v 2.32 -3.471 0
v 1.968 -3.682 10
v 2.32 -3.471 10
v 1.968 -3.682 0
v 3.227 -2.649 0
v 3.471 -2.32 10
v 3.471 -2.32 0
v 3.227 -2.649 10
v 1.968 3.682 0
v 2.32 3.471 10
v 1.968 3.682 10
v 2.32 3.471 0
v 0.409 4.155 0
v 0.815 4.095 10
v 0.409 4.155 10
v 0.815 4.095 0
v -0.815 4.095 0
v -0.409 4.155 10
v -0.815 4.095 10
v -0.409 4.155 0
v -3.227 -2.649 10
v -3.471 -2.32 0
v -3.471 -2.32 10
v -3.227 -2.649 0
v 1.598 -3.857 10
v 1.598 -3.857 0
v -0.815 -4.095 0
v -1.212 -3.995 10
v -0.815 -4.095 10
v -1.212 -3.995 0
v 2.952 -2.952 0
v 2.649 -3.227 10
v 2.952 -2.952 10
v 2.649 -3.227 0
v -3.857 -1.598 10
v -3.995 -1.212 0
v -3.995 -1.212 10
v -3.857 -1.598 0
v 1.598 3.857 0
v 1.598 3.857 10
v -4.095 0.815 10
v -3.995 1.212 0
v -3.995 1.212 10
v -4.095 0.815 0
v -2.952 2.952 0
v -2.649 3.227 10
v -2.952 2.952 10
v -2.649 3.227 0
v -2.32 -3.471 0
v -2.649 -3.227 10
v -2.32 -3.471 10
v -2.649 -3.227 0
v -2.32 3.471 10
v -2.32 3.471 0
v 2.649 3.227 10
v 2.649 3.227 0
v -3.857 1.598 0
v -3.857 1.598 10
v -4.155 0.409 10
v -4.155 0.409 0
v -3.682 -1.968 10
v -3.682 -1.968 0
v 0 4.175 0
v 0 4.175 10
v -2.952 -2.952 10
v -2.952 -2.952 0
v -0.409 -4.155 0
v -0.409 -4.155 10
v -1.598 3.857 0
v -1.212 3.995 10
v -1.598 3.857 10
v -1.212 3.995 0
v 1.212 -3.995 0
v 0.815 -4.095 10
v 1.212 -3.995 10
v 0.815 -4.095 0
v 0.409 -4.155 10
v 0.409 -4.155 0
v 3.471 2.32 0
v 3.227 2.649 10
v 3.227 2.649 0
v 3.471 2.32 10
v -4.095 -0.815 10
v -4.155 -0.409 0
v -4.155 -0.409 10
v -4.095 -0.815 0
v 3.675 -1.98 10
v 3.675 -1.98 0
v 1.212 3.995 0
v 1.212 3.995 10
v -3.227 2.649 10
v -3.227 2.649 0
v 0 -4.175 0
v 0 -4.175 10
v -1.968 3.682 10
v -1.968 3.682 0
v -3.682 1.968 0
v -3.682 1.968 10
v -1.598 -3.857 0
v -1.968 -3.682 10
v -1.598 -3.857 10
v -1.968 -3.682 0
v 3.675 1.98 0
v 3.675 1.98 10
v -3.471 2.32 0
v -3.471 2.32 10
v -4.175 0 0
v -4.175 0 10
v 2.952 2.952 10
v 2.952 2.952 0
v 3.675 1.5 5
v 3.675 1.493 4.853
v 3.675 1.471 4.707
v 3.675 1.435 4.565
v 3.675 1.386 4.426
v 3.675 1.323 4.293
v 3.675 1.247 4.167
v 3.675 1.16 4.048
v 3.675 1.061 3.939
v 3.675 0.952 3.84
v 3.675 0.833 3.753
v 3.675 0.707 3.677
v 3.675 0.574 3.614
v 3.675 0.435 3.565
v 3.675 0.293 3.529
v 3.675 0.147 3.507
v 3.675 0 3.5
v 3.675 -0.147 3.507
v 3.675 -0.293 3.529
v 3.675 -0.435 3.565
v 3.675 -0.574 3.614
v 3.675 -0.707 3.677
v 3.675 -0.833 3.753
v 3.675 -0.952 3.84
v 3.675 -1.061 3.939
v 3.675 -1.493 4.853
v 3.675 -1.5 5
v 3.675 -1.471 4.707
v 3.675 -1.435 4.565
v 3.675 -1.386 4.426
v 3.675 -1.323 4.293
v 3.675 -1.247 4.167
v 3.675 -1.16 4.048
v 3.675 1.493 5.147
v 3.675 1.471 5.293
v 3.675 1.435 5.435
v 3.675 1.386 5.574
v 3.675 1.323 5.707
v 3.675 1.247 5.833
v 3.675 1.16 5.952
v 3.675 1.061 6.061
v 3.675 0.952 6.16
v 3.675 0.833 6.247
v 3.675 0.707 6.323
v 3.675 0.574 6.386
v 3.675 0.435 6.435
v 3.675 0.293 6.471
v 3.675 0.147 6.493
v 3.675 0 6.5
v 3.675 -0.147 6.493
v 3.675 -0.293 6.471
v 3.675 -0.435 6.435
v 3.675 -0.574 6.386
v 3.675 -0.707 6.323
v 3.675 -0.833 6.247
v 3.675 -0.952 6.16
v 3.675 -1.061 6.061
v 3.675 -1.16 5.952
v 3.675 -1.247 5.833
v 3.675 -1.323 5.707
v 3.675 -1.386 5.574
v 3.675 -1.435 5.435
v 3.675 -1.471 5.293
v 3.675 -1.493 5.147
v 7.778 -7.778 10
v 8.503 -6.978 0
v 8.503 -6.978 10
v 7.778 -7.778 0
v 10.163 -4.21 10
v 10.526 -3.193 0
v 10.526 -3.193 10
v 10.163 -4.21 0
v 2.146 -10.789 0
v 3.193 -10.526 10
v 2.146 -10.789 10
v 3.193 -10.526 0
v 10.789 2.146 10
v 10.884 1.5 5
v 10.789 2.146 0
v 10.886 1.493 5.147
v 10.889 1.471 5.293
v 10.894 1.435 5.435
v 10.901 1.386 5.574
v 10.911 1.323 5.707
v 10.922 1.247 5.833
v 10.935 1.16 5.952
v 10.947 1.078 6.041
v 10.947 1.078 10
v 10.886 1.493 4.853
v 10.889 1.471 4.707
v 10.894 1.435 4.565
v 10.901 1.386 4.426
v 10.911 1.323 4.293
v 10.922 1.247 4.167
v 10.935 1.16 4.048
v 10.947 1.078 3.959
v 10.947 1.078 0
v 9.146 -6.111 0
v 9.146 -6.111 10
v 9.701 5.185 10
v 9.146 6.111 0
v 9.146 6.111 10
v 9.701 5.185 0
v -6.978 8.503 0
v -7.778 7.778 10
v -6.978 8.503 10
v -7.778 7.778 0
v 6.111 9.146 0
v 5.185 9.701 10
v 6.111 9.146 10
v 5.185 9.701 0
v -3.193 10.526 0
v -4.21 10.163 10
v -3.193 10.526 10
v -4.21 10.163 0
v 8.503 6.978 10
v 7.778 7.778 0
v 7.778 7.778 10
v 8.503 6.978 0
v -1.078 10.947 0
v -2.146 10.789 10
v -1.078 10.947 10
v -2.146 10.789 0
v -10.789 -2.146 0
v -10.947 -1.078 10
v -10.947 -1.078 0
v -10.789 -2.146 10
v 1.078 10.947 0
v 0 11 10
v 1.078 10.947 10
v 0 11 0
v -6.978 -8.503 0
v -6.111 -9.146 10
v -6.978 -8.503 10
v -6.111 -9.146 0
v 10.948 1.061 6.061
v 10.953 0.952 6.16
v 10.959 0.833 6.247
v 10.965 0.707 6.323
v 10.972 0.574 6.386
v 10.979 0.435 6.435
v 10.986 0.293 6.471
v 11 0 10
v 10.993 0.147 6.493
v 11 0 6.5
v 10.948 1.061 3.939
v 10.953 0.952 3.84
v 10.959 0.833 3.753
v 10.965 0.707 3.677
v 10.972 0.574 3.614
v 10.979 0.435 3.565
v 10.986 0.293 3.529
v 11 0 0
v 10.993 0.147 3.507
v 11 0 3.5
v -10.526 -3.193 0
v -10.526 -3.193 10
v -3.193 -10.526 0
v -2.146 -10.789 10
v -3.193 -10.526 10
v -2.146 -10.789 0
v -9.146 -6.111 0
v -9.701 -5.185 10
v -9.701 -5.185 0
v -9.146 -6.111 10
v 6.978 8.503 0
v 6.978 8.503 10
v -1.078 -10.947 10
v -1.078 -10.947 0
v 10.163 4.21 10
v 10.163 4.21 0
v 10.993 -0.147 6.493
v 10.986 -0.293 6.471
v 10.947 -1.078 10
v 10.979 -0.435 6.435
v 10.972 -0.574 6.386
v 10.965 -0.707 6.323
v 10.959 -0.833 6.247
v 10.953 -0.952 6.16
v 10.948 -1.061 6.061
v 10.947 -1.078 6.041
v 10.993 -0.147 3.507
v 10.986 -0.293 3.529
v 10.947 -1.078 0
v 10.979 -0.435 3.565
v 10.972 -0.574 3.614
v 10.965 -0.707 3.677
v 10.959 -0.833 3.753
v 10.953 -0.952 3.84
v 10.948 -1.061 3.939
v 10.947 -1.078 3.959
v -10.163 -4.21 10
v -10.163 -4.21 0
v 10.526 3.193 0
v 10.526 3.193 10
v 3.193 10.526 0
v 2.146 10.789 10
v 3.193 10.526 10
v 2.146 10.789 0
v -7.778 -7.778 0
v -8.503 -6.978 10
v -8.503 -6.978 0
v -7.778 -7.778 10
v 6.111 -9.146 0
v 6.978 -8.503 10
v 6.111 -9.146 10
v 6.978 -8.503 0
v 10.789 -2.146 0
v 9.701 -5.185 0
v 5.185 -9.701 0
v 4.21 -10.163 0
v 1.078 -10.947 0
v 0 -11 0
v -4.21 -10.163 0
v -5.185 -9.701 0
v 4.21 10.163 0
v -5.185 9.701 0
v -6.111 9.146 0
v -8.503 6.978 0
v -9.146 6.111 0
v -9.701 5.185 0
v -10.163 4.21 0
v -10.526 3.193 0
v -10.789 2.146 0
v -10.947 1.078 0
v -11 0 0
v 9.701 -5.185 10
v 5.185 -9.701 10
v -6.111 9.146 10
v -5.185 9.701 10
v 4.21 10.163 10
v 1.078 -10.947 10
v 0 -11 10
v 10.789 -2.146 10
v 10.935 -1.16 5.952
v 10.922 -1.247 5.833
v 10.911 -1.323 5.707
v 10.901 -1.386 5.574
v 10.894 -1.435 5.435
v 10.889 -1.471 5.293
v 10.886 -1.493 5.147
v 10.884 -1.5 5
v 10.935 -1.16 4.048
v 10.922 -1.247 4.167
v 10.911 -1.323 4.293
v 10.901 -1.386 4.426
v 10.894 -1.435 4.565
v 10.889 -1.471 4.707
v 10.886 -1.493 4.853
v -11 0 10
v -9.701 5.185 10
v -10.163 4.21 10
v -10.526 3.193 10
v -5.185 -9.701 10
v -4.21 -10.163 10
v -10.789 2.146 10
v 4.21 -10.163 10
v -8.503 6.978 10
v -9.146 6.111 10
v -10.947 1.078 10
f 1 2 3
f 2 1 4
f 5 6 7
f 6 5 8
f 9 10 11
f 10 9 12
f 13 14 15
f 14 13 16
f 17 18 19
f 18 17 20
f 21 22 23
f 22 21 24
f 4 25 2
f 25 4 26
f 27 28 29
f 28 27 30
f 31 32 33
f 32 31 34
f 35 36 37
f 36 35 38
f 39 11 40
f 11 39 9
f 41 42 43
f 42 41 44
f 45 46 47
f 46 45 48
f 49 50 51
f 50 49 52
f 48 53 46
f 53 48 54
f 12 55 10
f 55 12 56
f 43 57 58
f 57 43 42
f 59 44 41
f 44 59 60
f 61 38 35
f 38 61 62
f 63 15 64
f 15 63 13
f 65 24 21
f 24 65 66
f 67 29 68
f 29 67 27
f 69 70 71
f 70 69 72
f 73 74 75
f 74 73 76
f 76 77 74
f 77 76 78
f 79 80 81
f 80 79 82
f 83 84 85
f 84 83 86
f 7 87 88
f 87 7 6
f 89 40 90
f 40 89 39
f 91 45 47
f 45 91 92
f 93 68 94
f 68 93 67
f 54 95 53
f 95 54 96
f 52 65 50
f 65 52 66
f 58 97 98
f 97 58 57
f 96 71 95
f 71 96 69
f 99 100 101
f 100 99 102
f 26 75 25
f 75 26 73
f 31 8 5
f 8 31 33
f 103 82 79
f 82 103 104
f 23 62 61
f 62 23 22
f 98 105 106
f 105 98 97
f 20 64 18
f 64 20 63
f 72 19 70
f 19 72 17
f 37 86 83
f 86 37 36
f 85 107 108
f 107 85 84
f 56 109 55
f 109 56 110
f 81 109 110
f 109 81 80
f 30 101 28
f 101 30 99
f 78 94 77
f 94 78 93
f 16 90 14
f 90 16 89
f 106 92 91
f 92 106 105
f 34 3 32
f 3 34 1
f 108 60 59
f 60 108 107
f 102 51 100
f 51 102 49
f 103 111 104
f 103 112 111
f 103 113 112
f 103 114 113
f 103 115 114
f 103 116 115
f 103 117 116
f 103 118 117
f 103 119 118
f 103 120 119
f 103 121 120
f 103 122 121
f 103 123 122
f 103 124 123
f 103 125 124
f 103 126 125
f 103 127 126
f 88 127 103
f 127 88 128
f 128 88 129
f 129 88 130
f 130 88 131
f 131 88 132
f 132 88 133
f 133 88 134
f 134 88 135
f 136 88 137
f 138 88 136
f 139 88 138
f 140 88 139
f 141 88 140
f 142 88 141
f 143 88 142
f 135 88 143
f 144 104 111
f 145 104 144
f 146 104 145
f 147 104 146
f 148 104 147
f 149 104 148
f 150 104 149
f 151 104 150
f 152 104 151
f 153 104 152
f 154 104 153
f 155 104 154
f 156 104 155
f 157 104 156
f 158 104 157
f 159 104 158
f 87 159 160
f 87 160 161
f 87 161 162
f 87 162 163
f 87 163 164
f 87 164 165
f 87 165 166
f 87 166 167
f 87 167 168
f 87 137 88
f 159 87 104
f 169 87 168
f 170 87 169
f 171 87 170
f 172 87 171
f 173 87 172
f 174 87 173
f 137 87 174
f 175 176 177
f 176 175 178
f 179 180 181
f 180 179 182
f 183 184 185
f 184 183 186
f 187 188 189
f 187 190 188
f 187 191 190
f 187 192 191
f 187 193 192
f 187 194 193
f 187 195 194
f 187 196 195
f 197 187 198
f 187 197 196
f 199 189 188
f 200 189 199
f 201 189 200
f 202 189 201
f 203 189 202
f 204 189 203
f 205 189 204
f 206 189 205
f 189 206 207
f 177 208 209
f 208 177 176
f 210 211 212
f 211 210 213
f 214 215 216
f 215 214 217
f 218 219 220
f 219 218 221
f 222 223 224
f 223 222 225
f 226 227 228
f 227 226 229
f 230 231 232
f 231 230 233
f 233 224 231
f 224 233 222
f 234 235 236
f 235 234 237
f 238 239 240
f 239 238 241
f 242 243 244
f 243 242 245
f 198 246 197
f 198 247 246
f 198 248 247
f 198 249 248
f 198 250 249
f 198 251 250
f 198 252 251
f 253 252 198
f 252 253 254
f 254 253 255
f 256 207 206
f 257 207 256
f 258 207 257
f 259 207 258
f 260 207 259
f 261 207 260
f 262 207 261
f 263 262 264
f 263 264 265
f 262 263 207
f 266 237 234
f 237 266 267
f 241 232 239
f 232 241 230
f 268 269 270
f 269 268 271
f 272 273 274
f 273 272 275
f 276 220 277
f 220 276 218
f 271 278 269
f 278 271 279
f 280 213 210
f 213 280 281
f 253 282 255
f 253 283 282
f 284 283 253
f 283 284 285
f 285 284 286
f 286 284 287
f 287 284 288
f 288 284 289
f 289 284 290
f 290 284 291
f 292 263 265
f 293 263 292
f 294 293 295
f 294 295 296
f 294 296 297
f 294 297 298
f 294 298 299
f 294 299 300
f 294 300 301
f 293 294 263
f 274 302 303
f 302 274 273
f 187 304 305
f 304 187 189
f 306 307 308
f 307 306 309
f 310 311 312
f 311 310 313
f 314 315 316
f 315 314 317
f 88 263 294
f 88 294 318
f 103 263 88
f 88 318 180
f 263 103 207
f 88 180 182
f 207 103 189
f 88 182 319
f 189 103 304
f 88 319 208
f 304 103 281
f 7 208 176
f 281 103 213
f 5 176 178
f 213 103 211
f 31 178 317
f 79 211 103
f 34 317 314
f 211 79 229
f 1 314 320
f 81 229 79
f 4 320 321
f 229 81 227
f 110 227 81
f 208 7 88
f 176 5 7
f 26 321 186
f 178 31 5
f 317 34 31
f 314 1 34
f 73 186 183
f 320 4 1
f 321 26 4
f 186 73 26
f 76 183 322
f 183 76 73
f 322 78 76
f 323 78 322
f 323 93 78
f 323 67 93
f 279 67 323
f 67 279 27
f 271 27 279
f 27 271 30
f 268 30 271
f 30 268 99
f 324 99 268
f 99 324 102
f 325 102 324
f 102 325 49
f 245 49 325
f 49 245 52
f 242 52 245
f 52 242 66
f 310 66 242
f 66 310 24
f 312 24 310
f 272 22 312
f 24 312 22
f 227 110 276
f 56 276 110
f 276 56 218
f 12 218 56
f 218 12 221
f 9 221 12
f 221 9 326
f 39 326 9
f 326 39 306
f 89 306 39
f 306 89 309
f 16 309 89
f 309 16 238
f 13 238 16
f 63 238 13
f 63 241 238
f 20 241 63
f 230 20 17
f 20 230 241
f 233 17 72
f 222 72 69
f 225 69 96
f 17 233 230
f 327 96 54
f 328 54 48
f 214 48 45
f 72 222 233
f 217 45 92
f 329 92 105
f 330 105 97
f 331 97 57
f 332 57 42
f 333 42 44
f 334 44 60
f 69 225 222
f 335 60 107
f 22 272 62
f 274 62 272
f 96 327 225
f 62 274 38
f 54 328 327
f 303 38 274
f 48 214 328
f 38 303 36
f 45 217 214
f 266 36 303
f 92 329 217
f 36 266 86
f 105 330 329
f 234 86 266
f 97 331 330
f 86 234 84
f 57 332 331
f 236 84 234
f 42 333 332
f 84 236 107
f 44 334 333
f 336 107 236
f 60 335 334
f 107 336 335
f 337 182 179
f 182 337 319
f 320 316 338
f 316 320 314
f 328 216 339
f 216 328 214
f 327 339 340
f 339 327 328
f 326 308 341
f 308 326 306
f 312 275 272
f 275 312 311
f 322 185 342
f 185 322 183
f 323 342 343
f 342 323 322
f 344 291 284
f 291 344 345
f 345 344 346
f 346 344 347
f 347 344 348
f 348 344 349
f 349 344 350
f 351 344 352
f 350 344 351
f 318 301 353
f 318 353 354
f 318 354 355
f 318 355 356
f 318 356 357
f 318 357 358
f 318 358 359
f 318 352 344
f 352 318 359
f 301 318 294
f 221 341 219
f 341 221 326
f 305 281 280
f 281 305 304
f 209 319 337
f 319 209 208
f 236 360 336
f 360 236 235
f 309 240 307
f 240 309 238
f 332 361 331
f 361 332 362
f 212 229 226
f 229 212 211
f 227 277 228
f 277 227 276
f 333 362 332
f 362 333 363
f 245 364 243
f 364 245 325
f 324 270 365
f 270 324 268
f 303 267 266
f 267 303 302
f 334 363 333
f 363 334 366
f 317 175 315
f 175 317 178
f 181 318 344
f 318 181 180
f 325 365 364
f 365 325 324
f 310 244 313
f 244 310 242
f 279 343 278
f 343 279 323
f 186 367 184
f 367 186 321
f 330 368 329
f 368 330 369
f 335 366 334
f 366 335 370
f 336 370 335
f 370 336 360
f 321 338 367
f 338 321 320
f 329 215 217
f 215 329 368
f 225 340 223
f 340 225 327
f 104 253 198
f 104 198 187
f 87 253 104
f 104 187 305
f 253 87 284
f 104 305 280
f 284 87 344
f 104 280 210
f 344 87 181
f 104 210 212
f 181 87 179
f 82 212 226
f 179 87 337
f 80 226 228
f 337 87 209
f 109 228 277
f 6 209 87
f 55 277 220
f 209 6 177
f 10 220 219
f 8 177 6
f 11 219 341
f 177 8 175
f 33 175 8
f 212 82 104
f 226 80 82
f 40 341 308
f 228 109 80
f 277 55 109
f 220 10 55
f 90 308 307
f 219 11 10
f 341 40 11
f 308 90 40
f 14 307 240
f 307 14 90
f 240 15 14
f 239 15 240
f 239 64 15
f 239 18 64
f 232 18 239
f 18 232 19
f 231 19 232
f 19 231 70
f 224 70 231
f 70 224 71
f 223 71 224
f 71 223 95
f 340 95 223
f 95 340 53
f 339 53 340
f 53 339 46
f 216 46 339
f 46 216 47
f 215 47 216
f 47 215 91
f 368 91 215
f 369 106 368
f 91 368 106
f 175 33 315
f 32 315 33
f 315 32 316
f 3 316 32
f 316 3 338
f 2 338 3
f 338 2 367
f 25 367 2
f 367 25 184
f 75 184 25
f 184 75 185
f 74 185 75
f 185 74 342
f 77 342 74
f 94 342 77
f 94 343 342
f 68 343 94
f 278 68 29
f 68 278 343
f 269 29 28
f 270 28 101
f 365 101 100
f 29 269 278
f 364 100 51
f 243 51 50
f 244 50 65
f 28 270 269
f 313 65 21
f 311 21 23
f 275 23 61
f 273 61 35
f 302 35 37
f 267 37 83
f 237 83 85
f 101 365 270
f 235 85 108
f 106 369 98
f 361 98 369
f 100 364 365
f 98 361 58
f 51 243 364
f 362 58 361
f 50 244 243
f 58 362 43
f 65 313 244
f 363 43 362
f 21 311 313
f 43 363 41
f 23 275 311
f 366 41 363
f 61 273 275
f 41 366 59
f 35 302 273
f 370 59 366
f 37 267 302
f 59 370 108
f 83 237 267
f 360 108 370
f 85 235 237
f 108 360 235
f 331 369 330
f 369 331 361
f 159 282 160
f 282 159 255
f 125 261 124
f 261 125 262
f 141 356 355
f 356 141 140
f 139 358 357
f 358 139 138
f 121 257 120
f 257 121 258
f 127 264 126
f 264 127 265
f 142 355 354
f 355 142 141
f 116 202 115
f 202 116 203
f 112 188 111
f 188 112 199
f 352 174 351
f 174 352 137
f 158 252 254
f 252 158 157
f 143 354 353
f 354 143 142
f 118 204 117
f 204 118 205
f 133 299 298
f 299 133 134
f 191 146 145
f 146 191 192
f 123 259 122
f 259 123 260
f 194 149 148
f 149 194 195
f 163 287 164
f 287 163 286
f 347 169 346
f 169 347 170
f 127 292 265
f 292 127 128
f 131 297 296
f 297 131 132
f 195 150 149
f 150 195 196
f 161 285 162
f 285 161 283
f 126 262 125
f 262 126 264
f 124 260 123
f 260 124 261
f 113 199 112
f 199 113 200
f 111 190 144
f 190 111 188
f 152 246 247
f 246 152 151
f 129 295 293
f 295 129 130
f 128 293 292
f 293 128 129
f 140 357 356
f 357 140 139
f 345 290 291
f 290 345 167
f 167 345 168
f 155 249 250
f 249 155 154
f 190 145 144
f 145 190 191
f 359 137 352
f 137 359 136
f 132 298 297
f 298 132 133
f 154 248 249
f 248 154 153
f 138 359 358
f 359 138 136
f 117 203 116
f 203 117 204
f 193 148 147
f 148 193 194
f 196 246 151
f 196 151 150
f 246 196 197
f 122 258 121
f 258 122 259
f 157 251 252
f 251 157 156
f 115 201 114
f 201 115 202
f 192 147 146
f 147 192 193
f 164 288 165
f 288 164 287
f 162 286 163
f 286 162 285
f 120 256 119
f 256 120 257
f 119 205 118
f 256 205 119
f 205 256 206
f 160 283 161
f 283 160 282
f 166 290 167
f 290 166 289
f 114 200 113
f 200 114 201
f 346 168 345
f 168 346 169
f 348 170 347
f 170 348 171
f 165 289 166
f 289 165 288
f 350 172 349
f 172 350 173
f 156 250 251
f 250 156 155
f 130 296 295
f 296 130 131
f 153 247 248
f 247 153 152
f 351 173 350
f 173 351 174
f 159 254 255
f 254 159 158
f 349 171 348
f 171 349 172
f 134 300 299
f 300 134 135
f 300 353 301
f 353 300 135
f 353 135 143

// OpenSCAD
// Gen-DE — shaft collar with D-flat bore (set screw bears on the flat); print x4
include <parameters.scad>;
$fn = 64;
// D-flat keyed bore: flat faces +X (angle 0 = magnet pocket 0 = index notch)
module dflat_bore(h) {
    intersection() {
        cylinder(d=shaft_bore, h=h);
        translate([-shaft_bore, -shaft_bore, 0]) cube([shaft_bore + dflat_x, 2*shaft_bore, h]);
    }
}

od = 22; h = collar_h; set_d = 3.0;
difference() {
    cylinder(d=od, h=h);
    translate([0, 0, -0.1]) dflat_bore(h + 0.2);
    translate([0, 0, h/2]) rotate([0, 90, 0]) cylinder(d=set_d, h=od);
}
